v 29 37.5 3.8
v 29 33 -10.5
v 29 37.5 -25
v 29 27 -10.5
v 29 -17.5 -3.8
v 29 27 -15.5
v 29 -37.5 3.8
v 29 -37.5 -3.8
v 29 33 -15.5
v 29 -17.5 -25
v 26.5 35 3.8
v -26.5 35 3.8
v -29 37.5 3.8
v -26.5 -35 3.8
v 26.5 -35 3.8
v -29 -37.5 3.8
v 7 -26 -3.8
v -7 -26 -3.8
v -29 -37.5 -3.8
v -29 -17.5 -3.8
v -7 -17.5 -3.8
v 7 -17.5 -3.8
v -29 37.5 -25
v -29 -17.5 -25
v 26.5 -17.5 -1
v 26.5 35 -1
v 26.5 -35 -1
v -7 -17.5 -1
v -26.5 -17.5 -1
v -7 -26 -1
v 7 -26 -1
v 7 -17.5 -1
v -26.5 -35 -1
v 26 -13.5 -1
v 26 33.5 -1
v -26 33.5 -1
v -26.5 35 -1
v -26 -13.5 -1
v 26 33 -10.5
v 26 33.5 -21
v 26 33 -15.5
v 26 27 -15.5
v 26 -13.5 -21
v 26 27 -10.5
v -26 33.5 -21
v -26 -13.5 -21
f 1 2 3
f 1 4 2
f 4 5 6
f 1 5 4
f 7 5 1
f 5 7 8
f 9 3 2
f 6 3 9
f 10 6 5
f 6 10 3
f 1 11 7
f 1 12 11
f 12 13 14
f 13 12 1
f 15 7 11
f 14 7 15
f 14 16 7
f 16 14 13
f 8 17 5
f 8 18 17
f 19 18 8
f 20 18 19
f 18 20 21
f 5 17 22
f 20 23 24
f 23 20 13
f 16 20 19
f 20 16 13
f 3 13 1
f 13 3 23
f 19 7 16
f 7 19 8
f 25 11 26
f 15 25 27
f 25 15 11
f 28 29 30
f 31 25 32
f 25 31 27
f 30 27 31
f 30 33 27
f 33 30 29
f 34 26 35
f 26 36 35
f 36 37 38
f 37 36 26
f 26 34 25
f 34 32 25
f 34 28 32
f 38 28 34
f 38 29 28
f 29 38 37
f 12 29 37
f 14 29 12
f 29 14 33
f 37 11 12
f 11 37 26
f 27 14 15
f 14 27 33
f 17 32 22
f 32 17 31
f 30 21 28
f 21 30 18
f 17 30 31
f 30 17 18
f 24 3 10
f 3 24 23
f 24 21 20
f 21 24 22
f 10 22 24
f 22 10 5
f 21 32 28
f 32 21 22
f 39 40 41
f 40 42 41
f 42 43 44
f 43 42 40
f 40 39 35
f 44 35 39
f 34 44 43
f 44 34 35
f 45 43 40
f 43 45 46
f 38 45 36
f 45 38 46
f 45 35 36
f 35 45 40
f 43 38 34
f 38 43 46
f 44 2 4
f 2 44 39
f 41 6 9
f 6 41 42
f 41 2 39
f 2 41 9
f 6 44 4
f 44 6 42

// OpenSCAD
difference(){
    cube(size=[58, 75, 7.6], center=true);
    translate([0,0,2])
    cube(size=[53,70,6], center=true);
    translate([0,10,-5])
    cube(size=[53, 50, 10], center=true);
    translate([0,0,0])
    cube(size=[14,52,10], center=true);
}
translate([0,10,-13]){
difference(){
    cube(size=[58, 55, 24], center=true);
    translate([0,0,2])
    cube(size=[52, 47, 20], center=true);
    translate([26,20,0])
    cube(size=[8,6,5], center=true);
}
} 
